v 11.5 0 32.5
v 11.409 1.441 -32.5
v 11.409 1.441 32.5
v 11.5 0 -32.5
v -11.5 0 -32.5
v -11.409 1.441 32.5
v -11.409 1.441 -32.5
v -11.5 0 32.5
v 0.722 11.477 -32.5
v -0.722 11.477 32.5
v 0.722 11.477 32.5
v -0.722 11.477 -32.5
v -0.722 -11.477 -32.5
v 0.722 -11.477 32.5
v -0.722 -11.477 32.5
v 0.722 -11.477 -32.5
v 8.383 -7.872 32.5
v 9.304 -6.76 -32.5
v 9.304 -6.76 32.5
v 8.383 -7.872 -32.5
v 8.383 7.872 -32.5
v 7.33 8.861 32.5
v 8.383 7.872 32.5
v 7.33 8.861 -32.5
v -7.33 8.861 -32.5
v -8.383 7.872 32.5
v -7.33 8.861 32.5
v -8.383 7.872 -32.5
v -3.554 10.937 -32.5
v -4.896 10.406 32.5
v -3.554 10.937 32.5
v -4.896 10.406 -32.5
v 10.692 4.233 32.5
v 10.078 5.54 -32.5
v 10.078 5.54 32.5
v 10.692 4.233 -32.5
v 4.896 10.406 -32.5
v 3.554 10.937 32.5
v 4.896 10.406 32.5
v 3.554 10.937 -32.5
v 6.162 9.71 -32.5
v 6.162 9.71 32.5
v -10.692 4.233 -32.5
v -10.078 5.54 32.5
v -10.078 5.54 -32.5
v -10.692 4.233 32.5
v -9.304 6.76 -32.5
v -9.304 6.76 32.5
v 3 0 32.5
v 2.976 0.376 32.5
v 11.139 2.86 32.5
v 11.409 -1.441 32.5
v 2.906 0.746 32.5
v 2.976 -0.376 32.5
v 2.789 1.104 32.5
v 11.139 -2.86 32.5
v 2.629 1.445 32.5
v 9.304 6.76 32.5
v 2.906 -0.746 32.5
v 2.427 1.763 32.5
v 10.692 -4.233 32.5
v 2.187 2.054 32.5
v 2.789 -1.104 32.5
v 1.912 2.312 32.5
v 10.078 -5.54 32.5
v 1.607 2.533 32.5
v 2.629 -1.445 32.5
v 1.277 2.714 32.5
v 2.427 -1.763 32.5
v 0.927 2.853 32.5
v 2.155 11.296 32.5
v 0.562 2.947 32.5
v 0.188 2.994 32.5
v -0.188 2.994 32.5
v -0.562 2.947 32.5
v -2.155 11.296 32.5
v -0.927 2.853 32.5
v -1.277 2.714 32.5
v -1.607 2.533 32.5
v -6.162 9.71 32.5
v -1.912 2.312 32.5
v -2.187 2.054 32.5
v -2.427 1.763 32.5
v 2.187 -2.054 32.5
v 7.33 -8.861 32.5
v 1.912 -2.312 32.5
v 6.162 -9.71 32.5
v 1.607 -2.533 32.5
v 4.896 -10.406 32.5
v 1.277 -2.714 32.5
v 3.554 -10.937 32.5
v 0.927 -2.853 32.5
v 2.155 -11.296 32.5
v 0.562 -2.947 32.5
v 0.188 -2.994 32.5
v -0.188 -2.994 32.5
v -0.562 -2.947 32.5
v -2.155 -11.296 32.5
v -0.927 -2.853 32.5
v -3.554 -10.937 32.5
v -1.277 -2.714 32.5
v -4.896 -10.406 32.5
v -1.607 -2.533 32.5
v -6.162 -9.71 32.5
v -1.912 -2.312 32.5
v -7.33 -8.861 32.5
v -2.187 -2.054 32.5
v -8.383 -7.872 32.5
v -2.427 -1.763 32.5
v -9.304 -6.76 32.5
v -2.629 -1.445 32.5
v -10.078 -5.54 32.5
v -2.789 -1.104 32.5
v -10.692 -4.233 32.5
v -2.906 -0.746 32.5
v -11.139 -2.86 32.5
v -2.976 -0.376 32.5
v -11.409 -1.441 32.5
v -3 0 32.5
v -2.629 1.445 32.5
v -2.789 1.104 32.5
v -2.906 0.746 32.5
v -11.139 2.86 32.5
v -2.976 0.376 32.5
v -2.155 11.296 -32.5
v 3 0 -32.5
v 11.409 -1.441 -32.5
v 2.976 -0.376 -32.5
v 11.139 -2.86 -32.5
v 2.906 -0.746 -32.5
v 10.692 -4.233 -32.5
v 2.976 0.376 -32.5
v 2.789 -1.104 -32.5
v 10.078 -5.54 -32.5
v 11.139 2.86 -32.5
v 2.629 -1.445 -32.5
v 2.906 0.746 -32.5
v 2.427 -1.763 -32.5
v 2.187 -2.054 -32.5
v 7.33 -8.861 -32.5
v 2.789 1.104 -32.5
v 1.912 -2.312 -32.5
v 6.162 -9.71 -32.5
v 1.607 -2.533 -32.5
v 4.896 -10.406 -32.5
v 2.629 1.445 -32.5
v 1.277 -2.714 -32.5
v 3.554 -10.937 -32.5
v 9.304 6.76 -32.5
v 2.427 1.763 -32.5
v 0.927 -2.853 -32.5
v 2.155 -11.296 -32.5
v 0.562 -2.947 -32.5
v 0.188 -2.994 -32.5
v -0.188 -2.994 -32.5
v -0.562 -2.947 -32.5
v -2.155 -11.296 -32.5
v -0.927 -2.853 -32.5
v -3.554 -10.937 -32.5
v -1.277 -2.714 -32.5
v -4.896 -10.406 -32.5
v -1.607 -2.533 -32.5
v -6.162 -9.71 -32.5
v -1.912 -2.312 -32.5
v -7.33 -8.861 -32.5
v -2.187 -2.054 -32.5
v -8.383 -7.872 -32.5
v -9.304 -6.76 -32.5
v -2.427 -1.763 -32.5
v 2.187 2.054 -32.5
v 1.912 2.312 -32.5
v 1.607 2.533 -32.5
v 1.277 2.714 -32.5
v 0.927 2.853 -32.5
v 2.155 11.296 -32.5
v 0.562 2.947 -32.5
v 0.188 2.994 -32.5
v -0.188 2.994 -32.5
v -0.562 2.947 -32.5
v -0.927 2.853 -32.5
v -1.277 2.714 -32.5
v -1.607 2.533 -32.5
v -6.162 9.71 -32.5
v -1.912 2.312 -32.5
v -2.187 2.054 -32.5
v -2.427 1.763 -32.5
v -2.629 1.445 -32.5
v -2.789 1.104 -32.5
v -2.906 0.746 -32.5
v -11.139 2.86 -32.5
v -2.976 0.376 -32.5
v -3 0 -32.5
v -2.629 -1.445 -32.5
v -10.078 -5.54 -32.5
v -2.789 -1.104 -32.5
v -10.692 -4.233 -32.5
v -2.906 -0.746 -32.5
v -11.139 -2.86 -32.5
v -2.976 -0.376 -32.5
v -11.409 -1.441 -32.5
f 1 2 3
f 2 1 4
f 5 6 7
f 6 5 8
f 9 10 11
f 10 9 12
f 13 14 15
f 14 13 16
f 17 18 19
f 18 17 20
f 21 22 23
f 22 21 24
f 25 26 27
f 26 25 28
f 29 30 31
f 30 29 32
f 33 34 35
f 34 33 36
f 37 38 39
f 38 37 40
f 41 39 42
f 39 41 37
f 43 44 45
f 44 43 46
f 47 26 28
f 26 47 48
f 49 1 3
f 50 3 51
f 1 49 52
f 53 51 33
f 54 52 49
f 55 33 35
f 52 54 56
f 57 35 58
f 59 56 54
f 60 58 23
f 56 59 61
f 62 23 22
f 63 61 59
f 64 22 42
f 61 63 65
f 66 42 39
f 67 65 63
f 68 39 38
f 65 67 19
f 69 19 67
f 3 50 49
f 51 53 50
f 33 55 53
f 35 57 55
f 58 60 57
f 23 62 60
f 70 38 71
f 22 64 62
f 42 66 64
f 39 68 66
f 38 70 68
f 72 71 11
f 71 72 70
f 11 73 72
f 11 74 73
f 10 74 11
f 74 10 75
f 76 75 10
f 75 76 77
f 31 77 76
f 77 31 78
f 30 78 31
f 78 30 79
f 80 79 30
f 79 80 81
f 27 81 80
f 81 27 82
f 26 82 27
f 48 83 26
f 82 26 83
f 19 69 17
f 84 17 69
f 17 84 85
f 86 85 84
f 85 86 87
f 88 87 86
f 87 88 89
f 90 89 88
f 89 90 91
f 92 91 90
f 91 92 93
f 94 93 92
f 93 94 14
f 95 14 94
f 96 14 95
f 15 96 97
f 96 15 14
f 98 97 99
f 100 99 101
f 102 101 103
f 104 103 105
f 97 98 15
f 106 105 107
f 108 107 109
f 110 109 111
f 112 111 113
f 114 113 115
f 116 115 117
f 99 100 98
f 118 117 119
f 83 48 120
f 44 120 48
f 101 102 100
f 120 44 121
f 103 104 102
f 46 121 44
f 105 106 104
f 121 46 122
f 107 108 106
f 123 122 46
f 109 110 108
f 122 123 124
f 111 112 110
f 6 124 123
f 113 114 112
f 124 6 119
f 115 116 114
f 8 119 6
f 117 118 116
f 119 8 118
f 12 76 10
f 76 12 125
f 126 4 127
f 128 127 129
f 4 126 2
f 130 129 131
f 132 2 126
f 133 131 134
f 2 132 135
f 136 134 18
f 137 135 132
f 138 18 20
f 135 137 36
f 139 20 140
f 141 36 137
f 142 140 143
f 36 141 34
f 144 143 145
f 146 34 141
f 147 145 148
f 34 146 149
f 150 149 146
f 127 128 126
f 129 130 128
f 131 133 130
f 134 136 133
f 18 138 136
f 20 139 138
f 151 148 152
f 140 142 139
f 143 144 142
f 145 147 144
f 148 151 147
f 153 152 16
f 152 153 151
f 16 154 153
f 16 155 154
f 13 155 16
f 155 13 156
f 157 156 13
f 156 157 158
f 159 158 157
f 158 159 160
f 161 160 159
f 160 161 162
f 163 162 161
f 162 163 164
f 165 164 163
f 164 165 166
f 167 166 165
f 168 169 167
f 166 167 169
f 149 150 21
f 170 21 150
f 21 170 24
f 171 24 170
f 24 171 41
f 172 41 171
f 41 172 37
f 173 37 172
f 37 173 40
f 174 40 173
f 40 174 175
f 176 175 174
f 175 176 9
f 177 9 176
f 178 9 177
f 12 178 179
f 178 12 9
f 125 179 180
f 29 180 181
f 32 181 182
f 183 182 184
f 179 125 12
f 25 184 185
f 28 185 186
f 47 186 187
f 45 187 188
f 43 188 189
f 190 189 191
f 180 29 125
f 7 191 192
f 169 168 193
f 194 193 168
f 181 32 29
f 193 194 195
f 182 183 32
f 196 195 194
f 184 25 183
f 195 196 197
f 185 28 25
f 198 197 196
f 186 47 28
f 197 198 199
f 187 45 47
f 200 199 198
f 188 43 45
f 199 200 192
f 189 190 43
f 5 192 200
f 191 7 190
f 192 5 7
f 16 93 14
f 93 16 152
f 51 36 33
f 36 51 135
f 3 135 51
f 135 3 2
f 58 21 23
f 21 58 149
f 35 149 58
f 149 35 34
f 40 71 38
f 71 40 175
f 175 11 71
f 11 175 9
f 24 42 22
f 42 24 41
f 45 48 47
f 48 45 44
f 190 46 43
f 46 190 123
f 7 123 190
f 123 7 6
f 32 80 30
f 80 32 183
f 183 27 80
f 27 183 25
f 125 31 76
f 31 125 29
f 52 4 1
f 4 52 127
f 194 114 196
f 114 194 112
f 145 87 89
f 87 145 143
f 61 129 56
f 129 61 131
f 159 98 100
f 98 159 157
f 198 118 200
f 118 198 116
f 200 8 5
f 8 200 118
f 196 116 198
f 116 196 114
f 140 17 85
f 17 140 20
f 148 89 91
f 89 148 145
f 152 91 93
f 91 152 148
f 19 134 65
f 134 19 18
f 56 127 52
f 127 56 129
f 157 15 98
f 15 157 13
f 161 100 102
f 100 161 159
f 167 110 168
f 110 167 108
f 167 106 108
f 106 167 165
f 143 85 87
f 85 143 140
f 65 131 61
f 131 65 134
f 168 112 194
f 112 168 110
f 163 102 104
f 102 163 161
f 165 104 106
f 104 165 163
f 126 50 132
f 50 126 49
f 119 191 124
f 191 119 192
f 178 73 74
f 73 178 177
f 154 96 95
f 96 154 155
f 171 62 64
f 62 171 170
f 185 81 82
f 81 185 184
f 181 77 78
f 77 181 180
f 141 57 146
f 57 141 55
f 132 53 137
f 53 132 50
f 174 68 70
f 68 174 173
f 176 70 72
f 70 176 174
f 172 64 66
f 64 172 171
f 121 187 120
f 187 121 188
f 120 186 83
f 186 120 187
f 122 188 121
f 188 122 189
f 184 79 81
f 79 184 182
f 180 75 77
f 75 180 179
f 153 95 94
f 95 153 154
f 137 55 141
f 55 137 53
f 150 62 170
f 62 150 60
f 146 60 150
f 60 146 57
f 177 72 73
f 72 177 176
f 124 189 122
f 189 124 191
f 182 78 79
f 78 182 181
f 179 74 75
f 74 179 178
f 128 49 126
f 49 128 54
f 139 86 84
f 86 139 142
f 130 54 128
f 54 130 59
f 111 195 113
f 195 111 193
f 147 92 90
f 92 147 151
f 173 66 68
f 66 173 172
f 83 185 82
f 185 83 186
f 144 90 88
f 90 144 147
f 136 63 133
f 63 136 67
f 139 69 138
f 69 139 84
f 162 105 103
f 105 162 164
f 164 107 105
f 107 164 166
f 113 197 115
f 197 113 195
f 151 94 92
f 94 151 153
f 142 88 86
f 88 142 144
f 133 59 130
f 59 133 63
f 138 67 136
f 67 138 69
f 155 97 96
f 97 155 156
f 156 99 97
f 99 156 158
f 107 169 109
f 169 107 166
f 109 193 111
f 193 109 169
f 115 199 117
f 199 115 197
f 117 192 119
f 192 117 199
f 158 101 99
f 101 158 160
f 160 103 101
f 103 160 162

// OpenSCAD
$fn = 50;


difference() {
	union() {
		translate(v = [0, 0, -32.5000000000]) {
			cylinder(h = 65, r = 11.5000000000);
		}
	}
	union() {
		translate(v = [0, 0, -100.0000000000]) {
			cylinder(h = 200, r = 3);
		}
	}
}
